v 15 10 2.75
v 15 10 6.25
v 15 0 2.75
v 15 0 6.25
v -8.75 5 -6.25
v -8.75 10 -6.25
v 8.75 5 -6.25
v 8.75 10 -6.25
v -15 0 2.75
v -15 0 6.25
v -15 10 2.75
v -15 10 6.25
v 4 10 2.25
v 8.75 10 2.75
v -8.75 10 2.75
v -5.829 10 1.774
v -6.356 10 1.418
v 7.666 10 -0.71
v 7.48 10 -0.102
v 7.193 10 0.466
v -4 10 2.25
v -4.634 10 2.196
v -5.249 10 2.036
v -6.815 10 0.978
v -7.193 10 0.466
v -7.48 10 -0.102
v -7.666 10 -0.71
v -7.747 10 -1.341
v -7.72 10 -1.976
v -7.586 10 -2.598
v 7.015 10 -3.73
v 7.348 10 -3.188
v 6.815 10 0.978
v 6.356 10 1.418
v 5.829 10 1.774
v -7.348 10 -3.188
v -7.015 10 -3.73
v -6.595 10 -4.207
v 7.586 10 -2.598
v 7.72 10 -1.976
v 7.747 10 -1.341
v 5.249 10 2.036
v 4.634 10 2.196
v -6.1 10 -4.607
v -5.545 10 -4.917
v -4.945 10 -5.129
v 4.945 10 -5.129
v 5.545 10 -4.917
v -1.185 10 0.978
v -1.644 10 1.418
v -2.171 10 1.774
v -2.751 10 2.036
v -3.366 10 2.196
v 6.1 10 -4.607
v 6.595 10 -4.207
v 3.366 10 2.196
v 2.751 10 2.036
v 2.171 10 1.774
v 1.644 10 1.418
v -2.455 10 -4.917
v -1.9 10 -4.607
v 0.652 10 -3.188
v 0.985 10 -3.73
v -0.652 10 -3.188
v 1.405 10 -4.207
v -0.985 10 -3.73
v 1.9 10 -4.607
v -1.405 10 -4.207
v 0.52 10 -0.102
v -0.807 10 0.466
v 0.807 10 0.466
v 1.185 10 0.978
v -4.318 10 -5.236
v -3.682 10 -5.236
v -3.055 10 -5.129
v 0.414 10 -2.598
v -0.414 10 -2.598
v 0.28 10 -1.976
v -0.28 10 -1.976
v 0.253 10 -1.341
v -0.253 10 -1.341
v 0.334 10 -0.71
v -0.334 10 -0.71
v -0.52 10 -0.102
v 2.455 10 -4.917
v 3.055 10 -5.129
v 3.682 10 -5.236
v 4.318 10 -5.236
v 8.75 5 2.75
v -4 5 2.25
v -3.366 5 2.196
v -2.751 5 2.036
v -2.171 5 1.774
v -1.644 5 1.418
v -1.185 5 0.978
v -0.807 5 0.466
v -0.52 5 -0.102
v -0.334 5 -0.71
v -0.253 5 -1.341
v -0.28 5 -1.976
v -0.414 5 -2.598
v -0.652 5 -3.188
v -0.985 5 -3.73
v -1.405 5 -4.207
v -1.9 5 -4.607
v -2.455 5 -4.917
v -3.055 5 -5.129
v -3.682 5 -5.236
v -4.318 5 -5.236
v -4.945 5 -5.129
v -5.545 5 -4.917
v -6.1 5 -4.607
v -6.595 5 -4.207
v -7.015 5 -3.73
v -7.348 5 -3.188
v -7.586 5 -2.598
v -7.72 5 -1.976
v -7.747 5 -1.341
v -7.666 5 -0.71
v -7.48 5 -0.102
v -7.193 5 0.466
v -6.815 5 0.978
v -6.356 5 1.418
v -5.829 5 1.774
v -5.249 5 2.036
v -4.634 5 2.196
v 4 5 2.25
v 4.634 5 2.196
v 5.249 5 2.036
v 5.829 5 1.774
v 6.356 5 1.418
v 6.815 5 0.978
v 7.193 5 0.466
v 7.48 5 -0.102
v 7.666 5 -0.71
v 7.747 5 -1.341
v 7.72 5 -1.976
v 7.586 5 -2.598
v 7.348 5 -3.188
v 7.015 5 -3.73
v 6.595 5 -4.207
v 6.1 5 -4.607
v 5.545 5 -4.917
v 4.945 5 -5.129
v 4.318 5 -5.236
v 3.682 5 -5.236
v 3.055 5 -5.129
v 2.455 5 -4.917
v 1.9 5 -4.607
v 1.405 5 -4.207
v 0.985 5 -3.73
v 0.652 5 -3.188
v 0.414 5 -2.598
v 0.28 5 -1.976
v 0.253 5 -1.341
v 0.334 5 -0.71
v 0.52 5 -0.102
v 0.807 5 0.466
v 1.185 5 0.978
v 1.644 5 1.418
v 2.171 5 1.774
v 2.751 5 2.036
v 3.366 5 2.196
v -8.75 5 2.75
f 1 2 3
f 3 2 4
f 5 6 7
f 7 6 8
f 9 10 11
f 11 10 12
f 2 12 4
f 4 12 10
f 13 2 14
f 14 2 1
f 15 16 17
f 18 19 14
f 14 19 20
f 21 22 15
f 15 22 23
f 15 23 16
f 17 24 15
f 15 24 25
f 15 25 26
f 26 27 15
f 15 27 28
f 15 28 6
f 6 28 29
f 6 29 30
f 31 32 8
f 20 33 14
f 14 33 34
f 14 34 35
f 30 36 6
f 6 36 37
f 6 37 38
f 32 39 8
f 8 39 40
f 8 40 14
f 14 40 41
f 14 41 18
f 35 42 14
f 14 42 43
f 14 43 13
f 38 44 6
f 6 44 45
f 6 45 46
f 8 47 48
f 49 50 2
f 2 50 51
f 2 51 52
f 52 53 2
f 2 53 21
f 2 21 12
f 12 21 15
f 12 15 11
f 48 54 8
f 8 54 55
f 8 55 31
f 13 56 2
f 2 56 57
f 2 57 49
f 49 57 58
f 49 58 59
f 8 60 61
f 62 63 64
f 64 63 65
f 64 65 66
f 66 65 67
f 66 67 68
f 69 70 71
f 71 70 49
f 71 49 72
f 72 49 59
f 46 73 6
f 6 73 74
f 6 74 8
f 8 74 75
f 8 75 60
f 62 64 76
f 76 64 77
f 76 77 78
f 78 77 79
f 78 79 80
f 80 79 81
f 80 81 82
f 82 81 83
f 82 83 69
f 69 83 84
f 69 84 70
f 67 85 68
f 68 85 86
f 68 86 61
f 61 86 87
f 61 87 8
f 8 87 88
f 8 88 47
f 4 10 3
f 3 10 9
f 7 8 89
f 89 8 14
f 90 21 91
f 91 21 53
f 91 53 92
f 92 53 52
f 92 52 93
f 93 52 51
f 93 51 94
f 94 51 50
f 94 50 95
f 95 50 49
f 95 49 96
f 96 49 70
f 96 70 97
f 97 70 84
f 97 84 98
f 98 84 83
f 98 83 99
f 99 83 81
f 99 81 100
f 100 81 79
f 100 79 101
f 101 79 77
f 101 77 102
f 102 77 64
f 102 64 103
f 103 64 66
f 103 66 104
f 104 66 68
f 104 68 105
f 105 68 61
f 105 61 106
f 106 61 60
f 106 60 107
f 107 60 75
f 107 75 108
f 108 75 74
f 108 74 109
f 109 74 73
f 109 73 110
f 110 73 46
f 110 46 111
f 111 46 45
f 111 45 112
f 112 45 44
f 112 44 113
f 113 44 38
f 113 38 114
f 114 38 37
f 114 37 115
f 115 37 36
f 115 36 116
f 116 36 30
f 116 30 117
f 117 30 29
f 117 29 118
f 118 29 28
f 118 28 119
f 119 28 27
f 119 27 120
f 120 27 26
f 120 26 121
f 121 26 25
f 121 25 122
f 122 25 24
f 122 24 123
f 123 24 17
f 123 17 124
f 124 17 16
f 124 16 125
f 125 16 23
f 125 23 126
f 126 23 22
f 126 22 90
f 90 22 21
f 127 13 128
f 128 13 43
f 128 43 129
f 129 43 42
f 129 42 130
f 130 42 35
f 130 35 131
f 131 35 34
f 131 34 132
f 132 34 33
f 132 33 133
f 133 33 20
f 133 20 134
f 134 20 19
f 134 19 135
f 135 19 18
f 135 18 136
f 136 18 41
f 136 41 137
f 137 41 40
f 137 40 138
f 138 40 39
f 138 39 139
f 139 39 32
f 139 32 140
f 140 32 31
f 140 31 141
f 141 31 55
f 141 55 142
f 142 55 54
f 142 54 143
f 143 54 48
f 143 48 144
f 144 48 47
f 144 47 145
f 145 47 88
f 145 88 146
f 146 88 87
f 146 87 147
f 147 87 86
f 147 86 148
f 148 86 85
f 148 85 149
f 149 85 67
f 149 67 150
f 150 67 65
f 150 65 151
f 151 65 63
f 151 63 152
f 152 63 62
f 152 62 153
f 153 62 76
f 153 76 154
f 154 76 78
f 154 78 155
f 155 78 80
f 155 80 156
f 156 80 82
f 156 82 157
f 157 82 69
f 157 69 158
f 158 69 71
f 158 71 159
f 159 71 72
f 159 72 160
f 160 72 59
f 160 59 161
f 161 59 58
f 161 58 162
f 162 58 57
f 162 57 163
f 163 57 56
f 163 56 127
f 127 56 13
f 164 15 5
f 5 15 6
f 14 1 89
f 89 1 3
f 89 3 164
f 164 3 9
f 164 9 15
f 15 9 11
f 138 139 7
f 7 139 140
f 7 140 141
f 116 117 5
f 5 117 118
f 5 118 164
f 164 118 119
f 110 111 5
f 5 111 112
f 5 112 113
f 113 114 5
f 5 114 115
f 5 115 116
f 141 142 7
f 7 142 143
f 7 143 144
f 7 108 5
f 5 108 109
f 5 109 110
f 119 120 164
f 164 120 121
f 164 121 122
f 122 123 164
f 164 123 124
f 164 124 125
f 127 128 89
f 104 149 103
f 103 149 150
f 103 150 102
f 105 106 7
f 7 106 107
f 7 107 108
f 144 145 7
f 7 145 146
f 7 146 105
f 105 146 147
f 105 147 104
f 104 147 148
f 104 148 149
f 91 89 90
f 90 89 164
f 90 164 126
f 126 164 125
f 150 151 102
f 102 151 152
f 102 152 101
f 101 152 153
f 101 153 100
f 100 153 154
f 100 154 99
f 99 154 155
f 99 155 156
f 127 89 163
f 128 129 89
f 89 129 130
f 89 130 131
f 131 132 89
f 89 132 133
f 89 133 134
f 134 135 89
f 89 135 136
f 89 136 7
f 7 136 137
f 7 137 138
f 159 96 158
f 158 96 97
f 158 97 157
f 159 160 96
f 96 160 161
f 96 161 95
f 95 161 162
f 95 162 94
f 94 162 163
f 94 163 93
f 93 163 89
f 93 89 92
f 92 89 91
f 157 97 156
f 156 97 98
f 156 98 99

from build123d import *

# Parameters (mm, degrees)
SKETCH3_W           = 30
SKETCH3_H           = 12.5
BOSS_EXTRUDE1_DEPTH = 10
SKETCH6_R           = 3.75
SKETCH6_W           = 6.25
SKETCH6_H           = 9
CUT_EXTRUDE2_DEPTH  = 10
SKETCH8_W           = 17.5
SKETCH8_H           = 9
CUT_EXTRUDE4_DEPTH  = 5


with BuildPart() as part:
    # Sketch3 → Boss-Extrude1 (new body)
    with BuildSketch(Plane(origin=(0, 0, 0), x_dir=(1, 0, 0), z_dir=(0, 1, 0))):
        Rectangle(SKETCH3_W, SKETCH3_H)
    extrude(amount=BOSS_EXTRUDE1_DEPTH)

    # Sketch6 → Cut-Extrude2 (cut)
    with BuildSketch(Plane(origin=(0, 10, 0), x_dir=(1, 0, 0), z_dir=(0, 1, 0))):
        with Locations(Location((-4, 1.5, 0), (0, 0, 270))):
            Circle(SKETCH6_R)
        with Locations(Location((4, 1.5, 0), (0, 0, 270))):
            Circle(SKETCH6_R)
        with Locations((-11.875, 1.75)):
            Rectangle(SKETCH6_W, SKETCH6_H)
        with Locations((11.875, 1.75)):
            Rectangle(SKETCH6_W, SKETCH6_H)
    extrude(amount=-CUT_EXTRUDE2_DEPTH, mode=Mode.SUBTRACT)

    # Sketch8 → Cut-Extrude4 (cut)
    with BuildSketch(Plane.XZ):
        with Locations((0, -1.75)):
            Rectangle(SKETCH8_W, SKETCH8_H)
    extrude(amount=-CUT_EXTRUDE4_DEPTH, mode=Mode.SUBTRACT)


solid = part.part
